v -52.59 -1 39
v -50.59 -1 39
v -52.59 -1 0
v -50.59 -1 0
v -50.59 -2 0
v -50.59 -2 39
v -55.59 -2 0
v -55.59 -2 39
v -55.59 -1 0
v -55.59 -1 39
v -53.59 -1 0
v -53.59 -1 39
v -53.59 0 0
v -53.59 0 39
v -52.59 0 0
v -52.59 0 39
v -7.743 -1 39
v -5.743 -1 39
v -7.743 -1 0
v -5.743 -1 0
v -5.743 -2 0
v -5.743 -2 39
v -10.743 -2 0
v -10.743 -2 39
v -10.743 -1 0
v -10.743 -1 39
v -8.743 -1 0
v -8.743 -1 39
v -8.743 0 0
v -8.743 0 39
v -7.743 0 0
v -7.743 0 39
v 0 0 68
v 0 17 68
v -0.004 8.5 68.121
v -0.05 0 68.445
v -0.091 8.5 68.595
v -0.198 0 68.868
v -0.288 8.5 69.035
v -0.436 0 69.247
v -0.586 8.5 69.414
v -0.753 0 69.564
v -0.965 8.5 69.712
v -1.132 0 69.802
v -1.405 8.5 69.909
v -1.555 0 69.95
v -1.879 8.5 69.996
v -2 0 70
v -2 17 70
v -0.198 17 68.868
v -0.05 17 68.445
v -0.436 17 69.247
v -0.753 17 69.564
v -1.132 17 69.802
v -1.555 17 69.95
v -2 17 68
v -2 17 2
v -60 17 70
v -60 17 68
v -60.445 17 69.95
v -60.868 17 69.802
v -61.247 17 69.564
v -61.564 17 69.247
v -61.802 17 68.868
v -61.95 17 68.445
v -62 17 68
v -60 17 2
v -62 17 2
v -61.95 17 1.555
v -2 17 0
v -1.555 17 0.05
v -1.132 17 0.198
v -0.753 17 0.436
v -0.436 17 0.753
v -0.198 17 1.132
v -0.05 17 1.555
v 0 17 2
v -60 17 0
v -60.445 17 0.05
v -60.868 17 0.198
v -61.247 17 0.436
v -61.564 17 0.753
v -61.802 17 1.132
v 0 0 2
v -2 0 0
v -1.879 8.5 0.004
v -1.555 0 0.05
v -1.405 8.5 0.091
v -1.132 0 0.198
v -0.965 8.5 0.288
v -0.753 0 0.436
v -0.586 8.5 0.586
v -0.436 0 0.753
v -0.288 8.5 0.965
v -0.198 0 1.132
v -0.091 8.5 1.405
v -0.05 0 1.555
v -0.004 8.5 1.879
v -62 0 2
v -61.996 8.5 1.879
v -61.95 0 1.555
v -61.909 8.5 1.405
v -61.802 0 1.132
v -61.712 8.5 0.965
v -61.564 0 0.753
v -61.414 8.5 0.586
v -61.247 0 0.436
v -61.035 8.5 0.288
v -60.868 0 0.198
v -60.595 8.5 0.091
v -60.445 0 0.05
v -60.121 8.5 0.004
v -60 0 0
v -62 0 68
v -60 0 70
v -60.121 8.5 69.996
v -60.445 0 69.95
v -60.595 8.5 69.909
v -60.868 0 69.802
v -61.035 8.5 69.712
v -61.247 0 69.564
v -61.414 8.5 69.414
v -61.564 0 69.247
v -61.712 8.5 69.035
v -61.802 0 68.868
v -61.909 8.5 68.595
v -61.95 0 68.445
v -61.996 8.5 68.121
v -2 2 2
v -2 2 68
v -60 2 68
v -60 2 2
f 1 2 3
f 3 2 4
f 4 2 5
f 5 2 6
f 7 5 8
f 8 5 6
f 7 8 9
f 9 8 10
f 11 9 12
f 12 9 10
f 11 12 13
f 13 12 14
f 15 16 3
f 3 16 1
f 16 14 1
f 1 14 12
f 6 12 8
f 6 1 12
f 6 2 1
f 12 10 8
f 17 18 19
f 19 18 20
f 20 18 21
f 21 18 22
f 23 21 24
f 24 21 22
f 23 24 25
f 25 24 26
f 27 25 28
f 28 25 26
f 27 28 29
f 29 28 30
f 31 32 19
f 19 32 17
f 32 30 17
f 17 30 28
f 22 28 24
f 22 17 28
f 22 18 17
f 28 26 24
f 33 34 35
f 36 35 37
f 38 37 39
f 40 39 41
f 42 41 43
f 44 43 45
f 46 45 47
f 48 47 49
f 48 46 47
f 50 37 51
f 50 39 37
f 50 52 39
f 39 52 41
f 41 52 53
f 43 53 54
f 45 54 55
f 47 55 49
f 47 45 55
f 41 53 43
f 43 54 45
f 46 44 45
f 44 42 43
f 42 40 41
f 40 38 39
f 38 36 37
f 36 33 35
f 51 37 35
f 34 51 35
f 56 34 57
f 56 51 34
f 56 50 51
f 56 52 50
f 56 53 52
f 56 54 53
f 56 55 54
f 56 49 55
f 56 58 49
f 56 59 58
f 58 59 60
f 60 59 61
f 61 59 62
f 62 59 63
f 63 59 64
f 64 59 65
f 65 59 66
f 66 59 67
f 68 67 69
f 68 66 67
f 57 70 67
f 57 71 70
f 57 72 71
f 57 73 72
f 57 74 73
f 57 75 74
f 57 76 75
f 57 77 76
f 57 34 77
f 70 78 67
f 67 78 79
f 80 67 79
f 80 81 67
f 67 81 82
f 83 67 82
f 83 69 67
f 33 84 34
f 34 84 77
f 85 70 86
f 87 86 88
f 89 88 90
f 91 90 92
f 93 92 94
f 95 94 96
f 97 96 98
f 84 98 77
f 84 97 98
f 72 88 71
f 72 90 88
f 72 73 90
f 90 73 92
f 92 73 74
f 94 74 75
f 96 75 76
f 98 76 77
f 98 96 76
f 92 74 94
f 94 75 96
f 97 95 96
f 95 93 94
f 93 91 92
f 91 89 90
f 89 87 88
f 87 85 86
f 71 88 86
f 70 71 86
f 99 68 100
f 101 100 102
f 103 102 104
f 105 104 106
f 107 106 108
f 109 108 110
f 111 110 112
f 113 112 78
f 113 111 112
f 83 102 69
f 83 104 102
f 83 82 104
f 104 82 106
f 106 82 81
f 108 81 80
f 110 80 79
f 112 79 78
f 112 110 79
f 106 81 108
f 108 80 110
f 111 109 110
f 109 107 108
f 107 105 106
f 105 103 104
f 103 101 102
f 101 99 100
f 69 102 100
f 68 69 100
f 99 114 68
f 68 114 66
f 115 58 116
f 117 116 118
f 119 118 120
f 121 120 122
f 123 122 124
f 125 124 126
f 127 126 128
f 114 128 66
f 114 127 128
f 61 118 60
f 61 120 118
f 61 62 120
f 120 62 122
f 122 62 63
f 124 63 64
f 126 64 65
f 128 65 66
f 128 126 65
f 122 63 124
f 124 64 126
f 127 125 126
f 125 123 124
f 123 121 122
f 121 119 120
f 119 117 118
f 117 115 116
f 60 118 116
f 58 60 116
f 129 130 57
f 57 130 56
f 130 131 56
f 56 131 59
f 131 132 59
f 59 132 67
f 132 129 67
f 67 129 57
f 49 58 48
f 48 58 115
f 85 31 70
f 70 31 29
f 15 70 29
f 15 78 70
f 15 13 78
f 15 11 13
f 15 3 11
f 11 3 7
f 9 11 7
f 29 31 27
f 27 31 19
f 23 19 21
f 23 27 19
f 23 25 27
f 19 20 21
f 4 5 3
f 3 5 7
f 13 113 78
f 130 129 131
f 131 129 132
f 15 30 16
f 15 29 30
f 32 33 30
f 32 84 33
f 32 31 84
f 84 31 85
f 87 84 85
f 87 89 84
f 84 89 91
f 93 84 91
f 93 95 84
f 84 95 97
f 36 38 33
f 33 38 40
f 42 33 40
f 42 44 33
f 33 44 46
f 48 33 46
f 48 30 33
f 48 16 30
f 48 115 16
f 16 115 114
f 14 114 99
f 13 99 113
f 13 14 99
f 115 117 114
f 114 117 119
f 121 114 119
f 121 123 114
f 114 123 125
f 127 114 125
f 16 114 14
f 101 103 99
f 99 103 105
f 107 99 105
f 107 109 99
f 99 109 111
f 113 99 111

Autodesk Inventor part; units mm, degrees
ref_plane "YZ Plane" through (0, 0, 0) normal (1, 0, 0) x (0, 1, 0)
ref_plane "XZ Plane" through (0, 0, 0) normal (0, 1, 0) x (-1, 0, 0)
ref_plane "XY Plane" through (0, 0, 0) normal (0, 0, 1) x (1, 0, 0)
sketch "Sketch1" plane through (0, 0, 0) normal (0, 1, 0) x (-1, 0, 0)
  line L0 (0, 0) -> (62, 0)
  line L1 (62, 0) -> (62, 70)
  line L2 (62, 70) -> (0, 70)
  line L3 (0, 70) -> (0, 0)
  dimension "d0" = 62
  dimension "d1" = 70
extrude "Extrusion1" add sketch "Sketch1" along normal blind 2
sketch "Sketch2" plane through (0, 2, 0) normal (0, 1, 0) x (1, 0, 0)
  line L0 (0, 0) -> (-62, 0) projected
  line L1 (-62, 0) -> (-62, -70) projected
  line L2 (-62, -70) -> (0, -70) projected
  line L3 (0, -70) -> (0, 0) projected
  line L4 (-60, -2) -> (-2, -2)
  line L5 (-2, -2) -> (-2, -68)
  line L6 (-2, -68) -> (-60, -68)
  line L7 (-60, -68) -> (-60, -2)
  line L8 (0, 0) -> (-62, 0) projected
  line L9 (-62, 0) -> (-62, -70) projected
  line L10 (-62, -70) -> (0, -70) projected
  line L11 (0, -70) -> (0, 0) projected
  dimension "d4" = 2
  dimension "d5" = 2
  dimension "d6" = 2
  dimension "d7" = 2
extrude "Extrusion2" add sketch "Sketch2" along normal blind 15
fillet "Fillet1" radius 2 4 edges at (-62, 8.5, 70) (-62, 8.5, 0) (0, 8.5, 0) (0, 8.5, 70)
sketch "Sketch3" plane through (-2, 0, 0) normal (0, 0, -1) x (-1, 0, 0)
  line L0 (0, 0) -> (58, 0) projected
  line L1 (8.7434, -1) -> (3.7434, -1)
  line L2 (3.7434, -1) -> (3.7434, -2)
  line L3 (3.7434, -2) -> (8.7434, -2)
  line L4 (8.7434, -2) -> (8.7434, -1)
  line L5 (5.7434, 0) -> (6.7434, 0)
  line L6 (6.7434, 0) -> (6.7434, -1)
  line L7 (6.7434, -1) -> (5.7434, -1)
  line L8 (5.7434, -1) -> (5.7434, 0)
  line L9 (50.59, 0) -> (51.59, 0)
  line L10 (51.59, 0) -> (51.59, -1)
  line L11 (51.59, -1) -> (50.59, -1)
  line L12 (50.59, -1) -> (50.59, 0)
  line L13 (48.59, -1) -> (53.59, -1)
  line L14 (53.59, -1) -> (53.59, -2)
  line L15 (53.59, -2) -> (48.59, -2)
  line L16 (48.59, -2) -> (48.59, -1)
  point P0 (-2, 0)
  point P1 (29, 0)
  point P2 (9.41, 0)
  point P3 (48.59, 0)
  dimension "d11" = 19.59
  dimension "d12" = 19.59
  dimension "d14" = 2
  dimension "d15" = 2
  dimension "d16" = 2
  dimension "d17" = 2
  dimension "d18" = 2
  dimension "d19" = 1
  dimension "d20" = 1
  dimension "d21" = 1
  dimension "d22" = 1
  dimension "d23" = 1
  dimension "d24" = 1
extrude "Extrusion3" add sketch "Sketch3" against normal blind 39
properties part number "Insert"
